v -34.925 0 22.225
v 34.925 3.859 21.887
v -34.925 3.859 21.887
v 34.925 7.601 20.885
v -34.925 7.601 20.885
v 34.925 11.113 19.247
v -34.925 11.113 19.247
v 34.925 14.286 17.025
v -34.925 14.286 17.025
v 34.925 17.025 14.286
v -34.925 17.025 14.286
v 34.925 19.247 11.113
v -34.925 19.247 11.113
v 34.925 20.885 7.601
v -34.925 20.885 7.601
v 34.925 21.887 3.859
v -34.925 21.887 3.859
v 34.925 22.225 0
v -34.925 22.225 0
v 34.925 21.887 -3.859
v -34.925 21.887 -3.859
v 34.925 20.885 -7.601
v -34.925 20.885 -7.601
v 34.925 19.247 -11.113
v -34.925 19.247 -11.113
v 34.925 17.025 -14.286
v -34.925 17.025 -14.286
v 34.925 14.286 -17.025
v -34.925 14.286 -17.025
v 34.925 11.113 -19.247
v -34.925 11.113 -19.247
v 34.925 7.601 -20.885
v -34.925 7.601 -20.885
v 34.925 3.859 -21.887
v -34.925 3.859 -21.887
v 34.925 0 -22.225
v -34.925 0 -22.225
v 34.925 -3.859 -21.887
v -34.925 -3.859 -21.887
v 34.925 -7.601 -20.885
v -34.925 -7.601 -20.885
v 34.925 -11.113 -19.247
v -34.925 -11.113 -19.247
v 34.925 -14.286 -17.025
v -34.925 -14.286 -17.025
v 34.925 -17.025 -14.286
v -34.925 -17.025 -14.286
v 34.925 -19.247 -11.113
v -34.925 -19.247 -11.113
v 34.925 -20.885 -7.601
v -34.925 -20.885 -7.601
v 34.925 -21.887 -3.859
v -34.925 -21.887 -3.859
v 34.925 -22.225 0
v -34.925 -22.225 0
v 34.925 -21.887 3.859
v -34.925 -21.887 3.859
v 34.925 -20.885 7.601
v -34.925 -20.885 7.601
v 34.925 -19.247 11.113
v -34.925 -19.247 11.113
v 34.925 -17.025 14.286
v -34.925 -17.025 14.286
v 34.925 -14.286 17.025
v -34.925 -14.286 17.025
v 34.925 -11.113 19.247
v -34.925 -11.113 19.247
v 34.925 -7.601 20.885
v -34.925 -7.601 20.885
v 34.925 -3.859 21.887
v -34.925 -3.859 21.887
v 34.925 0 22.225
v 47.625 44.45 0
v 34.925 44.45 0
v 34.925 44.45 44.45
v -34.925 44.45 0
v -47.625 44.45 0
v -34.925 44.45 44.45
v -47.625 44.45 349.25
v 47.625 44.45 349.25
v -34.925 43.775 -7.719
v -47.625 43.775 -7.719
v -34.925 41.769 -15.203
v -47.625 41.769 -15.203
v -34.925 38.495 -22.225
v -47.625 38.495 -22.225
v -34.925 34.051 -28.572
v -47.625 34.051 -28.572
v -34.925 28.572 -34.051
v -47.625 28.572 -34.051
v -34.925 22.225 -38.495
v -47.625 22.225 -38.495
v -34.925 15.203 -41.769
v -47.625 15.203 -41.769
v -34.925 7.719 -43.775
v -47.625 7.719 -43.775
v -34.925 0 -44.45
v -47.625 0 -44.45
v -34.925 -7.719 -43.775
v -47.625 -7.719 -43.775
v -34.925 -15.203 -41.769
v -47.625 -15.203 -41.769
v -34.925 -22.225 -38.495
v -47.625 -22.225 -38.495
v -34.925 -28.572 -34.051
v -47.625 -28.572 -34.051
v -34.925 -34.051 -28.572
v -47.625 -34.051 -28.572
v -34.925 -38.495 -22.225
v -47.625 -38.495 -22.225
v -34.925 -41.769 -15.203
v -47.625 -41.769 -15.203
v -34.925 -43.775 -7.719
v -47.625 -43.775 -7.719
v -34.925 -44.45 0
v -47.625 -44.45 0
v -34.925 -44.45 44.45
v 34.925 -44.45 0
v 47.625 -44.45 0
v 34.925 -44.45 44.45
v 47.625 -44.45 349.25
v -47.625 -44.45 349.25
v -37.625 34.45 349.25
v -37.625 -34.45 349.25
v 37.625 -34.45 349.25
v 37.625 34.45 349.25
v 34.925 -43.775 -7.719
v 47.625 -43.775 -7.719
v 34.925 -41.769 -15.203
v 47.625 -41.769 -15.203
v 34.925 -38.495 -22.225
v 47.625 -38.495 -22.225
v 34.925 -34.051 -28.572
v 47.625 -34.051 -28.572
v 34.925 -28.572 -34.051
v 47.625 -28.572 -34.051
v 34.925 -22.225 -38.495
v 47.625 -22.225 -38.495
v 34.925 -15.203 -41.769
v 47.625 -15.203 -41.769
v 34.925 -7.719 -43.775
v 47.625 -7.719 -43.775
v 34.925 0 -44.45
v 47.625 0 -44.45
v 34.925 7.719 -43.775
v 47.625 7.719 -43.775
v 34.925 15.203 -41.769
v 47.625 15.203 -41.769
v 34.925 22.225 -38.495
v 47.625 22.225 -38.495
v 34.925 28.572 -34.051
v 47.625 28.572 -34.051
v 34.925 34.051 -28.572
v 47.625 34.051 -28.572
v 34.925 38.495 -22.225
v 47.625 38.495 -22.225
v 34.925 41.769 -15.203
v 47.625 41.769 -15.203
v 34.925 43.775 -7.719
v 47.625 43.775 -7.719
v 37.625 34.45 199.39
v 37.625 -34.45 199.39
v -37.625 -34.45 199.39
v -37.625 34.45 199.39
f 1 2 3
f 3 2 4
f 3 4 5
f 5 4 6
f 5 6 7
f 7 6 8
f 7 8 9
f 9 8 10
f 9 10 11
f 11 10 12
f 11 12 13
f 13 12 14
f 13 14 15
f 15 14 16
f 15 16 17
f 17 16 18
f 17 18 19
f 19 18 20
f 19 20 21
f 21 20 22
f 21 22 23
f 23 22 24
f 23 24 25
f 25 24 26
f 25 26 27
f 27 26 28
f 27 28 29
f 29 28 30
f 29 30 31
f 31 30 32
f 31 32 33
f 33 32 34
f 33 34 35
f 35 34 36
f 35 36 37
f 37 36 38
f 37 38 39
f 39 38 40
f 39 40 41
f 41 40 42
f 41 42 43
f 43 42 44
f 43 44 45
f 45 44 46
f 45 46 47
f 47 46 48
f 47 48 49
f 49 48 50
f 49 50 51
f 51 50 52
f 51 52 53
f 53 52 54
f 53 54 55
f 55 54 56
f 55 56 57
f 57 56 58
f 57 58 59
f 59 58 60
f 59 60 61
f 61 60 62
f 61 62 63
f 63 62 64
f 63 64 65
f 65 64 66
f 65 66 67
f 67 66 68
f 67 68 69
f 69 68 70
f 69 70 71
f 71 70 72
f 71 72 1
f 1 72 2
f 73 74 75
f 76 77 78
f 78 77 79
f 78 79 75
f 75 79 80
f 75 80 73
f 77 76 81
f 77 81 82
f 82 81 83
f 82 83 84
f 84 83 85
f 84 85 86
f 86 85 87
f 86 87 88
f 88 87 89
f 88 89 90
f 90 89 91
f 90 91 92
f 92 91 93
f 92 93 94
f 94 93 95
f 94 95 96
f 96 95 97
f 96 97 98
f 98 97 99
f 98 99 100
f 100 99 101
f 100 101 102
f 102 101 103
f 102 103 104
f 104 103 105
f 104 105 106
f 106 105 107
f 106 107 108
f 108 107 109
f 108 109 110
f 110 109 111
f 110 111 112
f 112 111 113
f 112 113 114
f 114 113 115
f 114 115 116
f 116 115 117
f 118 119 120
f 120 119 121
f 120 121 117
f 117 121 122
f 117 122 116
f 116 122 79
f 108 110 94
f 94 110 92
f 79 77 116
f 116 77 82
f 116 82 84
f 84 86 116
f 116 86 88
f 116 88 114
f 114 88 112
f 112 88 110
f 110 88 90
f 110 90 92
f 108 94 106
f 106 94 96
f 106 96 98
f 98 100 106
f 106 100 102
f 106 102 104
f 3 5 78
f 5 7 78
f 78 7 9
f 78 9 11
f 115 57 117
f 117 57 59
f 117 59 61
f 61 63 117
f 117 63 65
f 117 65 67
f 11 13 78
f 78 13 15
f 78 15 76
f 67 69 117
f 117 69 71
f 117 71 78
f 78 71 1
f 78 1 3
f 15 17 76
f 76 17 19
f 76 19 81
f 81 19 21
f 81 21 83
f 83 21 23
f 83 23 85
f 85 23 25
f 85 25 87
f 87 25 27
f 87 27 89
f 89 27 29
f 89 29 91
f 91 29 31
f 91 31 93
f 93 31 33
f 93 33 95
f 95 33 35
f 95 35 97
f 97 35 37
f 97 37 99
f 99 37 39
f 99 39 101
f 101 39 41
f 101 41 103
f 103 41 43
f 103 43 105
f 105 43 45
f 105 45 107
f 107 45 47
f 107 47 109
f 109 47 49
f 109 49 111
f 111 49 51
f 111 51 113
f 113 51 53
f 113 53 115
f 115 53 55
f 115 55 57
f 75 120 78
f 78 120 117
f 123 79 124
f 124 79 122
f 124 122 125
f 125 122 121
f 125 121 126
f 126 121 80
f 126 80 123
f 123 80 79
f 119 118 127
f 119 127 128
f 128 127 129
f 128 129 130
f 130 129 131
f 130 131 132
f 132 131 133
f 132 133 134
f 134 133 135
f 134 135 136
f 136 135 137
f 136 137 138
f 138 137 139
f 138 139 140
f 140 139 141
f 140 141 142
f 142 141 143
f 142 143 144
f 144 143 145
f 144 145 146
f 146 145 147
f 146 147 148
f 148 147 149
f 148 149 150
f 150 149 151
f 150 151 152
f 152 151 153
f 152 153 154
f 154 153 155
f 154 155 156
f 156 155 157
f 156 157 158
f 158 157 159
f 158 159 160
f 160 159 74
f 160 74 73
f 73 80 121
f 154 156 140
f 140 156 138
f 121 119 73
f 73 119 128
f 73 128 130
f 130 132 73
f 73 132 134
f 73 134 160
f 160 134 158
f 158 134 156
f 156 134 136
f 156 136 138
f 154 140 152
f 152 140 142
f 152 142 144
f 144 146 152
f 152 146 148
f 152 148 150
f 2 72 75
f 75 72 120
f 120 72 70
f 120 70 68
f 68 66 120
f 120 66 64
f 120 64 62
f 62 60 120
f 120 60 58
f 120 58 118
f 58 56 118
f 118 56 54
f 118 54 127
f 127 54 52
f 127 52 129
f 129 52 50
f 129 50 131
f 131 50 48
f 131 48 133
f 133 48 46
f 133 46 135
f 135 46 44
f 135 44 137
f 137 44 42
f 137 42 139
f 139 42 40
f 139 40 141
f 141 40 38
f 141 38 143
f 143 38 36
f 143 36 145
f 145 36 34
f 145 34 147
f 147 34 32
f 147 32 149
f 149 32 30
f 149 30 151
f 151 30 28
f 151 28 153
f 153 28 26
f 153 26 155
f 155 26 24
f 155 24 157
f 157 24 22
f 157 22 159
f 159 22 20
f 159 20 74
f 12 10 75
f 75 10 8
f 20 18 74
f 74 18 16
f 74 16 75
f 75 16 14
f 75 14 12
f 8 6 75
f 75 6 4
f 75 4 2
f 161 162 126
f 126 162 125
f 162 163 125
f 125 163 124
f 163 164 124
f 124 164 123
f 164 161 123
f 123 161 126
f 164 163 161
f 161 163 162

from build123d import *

# Parameters (mm, degrees)
SKETCH1_R           = 22.225
BOSS_EXTRUDE1_DEPTH = 34.925
BOSS_EXTRUDE2_START = -34.925
BOSS_EXTRUDE2_DEPTH = 12.7
SKETCH2_3_W         = 304.8
SKETCH2_3_H         = 88.9
BOSS_EXTRUDE3_DEPTH = 47.625
SKETCH3_W           = 75.25
SKETCH3_H           = 68.9
CUT_EXTRUDE1_DEPTH  = 149.86


with BuildPart() as part:
    # Sketch1 → Boss-Extrude1 (new, symmetric)
    with BuildSketch(Plane(origin=(0, 0, 0), x_dir=(0, 0, -1), z_dir=(1, 0, 0))):
        Circle(SKETCH1_R)
    extrude(amount=BOSS_EXTRUDE1_DEPTH, both=True)

    # Sketch2 → Boss-Extrude2 (add)
    with BuildSketch(Plane(origin=(0, 0, 0), x_dir=(0, 0, -1), z_dir=(1, 0, 0)).offset(BOSS_EXTRUDE2_START)):
        with BuildLine():
            Line((0, 44.45), (-44.45, 44.45))
            Line((-44.45, 44.45), (-44.45, -44.45))
            Line((-44.45, -44.45), (0, -44.45))
            ThreePointArc((0, -44.45), (44.45, 0), (0, 44.45))
        make_face()
    extrude(amount=-BOSS_EXTRUDE2_DEPTH)

    # Sketch2<3> → Boss-Extrude3 (add)
    with BuildSketch(Plane(origin=(0, 0, 0), x_dir=(0, 0, -1), z_dir=(1, 0, 0))):
        with Locations((-196.85, 0)):
            Rectangle(SKETCH2_3_W, SKETCH2_3_H)
    extrude(amount=-BOSS_EXTRUDE3_DEPTH)

    # Mirror6: part across plane


with BuildPart() as part_1:
    add(part.part)
    add(part.part.mirror(Plane(origin=(0, 0, 0), x_dir=(0, 0, 1), z_dir=(1, 0, 0))))

    # Sketch3 → Cut-Extrude1 (cut)
    with BuildSketch(Plane.XY.offset(349.25)):
        Rectangle(SKETCH3_W, SKETCH3_H)
    extrude(amount=-CUT_EXTRUDE1_DEPTH, mode=Mode.SUBTRACT)


solid = part_1.part
